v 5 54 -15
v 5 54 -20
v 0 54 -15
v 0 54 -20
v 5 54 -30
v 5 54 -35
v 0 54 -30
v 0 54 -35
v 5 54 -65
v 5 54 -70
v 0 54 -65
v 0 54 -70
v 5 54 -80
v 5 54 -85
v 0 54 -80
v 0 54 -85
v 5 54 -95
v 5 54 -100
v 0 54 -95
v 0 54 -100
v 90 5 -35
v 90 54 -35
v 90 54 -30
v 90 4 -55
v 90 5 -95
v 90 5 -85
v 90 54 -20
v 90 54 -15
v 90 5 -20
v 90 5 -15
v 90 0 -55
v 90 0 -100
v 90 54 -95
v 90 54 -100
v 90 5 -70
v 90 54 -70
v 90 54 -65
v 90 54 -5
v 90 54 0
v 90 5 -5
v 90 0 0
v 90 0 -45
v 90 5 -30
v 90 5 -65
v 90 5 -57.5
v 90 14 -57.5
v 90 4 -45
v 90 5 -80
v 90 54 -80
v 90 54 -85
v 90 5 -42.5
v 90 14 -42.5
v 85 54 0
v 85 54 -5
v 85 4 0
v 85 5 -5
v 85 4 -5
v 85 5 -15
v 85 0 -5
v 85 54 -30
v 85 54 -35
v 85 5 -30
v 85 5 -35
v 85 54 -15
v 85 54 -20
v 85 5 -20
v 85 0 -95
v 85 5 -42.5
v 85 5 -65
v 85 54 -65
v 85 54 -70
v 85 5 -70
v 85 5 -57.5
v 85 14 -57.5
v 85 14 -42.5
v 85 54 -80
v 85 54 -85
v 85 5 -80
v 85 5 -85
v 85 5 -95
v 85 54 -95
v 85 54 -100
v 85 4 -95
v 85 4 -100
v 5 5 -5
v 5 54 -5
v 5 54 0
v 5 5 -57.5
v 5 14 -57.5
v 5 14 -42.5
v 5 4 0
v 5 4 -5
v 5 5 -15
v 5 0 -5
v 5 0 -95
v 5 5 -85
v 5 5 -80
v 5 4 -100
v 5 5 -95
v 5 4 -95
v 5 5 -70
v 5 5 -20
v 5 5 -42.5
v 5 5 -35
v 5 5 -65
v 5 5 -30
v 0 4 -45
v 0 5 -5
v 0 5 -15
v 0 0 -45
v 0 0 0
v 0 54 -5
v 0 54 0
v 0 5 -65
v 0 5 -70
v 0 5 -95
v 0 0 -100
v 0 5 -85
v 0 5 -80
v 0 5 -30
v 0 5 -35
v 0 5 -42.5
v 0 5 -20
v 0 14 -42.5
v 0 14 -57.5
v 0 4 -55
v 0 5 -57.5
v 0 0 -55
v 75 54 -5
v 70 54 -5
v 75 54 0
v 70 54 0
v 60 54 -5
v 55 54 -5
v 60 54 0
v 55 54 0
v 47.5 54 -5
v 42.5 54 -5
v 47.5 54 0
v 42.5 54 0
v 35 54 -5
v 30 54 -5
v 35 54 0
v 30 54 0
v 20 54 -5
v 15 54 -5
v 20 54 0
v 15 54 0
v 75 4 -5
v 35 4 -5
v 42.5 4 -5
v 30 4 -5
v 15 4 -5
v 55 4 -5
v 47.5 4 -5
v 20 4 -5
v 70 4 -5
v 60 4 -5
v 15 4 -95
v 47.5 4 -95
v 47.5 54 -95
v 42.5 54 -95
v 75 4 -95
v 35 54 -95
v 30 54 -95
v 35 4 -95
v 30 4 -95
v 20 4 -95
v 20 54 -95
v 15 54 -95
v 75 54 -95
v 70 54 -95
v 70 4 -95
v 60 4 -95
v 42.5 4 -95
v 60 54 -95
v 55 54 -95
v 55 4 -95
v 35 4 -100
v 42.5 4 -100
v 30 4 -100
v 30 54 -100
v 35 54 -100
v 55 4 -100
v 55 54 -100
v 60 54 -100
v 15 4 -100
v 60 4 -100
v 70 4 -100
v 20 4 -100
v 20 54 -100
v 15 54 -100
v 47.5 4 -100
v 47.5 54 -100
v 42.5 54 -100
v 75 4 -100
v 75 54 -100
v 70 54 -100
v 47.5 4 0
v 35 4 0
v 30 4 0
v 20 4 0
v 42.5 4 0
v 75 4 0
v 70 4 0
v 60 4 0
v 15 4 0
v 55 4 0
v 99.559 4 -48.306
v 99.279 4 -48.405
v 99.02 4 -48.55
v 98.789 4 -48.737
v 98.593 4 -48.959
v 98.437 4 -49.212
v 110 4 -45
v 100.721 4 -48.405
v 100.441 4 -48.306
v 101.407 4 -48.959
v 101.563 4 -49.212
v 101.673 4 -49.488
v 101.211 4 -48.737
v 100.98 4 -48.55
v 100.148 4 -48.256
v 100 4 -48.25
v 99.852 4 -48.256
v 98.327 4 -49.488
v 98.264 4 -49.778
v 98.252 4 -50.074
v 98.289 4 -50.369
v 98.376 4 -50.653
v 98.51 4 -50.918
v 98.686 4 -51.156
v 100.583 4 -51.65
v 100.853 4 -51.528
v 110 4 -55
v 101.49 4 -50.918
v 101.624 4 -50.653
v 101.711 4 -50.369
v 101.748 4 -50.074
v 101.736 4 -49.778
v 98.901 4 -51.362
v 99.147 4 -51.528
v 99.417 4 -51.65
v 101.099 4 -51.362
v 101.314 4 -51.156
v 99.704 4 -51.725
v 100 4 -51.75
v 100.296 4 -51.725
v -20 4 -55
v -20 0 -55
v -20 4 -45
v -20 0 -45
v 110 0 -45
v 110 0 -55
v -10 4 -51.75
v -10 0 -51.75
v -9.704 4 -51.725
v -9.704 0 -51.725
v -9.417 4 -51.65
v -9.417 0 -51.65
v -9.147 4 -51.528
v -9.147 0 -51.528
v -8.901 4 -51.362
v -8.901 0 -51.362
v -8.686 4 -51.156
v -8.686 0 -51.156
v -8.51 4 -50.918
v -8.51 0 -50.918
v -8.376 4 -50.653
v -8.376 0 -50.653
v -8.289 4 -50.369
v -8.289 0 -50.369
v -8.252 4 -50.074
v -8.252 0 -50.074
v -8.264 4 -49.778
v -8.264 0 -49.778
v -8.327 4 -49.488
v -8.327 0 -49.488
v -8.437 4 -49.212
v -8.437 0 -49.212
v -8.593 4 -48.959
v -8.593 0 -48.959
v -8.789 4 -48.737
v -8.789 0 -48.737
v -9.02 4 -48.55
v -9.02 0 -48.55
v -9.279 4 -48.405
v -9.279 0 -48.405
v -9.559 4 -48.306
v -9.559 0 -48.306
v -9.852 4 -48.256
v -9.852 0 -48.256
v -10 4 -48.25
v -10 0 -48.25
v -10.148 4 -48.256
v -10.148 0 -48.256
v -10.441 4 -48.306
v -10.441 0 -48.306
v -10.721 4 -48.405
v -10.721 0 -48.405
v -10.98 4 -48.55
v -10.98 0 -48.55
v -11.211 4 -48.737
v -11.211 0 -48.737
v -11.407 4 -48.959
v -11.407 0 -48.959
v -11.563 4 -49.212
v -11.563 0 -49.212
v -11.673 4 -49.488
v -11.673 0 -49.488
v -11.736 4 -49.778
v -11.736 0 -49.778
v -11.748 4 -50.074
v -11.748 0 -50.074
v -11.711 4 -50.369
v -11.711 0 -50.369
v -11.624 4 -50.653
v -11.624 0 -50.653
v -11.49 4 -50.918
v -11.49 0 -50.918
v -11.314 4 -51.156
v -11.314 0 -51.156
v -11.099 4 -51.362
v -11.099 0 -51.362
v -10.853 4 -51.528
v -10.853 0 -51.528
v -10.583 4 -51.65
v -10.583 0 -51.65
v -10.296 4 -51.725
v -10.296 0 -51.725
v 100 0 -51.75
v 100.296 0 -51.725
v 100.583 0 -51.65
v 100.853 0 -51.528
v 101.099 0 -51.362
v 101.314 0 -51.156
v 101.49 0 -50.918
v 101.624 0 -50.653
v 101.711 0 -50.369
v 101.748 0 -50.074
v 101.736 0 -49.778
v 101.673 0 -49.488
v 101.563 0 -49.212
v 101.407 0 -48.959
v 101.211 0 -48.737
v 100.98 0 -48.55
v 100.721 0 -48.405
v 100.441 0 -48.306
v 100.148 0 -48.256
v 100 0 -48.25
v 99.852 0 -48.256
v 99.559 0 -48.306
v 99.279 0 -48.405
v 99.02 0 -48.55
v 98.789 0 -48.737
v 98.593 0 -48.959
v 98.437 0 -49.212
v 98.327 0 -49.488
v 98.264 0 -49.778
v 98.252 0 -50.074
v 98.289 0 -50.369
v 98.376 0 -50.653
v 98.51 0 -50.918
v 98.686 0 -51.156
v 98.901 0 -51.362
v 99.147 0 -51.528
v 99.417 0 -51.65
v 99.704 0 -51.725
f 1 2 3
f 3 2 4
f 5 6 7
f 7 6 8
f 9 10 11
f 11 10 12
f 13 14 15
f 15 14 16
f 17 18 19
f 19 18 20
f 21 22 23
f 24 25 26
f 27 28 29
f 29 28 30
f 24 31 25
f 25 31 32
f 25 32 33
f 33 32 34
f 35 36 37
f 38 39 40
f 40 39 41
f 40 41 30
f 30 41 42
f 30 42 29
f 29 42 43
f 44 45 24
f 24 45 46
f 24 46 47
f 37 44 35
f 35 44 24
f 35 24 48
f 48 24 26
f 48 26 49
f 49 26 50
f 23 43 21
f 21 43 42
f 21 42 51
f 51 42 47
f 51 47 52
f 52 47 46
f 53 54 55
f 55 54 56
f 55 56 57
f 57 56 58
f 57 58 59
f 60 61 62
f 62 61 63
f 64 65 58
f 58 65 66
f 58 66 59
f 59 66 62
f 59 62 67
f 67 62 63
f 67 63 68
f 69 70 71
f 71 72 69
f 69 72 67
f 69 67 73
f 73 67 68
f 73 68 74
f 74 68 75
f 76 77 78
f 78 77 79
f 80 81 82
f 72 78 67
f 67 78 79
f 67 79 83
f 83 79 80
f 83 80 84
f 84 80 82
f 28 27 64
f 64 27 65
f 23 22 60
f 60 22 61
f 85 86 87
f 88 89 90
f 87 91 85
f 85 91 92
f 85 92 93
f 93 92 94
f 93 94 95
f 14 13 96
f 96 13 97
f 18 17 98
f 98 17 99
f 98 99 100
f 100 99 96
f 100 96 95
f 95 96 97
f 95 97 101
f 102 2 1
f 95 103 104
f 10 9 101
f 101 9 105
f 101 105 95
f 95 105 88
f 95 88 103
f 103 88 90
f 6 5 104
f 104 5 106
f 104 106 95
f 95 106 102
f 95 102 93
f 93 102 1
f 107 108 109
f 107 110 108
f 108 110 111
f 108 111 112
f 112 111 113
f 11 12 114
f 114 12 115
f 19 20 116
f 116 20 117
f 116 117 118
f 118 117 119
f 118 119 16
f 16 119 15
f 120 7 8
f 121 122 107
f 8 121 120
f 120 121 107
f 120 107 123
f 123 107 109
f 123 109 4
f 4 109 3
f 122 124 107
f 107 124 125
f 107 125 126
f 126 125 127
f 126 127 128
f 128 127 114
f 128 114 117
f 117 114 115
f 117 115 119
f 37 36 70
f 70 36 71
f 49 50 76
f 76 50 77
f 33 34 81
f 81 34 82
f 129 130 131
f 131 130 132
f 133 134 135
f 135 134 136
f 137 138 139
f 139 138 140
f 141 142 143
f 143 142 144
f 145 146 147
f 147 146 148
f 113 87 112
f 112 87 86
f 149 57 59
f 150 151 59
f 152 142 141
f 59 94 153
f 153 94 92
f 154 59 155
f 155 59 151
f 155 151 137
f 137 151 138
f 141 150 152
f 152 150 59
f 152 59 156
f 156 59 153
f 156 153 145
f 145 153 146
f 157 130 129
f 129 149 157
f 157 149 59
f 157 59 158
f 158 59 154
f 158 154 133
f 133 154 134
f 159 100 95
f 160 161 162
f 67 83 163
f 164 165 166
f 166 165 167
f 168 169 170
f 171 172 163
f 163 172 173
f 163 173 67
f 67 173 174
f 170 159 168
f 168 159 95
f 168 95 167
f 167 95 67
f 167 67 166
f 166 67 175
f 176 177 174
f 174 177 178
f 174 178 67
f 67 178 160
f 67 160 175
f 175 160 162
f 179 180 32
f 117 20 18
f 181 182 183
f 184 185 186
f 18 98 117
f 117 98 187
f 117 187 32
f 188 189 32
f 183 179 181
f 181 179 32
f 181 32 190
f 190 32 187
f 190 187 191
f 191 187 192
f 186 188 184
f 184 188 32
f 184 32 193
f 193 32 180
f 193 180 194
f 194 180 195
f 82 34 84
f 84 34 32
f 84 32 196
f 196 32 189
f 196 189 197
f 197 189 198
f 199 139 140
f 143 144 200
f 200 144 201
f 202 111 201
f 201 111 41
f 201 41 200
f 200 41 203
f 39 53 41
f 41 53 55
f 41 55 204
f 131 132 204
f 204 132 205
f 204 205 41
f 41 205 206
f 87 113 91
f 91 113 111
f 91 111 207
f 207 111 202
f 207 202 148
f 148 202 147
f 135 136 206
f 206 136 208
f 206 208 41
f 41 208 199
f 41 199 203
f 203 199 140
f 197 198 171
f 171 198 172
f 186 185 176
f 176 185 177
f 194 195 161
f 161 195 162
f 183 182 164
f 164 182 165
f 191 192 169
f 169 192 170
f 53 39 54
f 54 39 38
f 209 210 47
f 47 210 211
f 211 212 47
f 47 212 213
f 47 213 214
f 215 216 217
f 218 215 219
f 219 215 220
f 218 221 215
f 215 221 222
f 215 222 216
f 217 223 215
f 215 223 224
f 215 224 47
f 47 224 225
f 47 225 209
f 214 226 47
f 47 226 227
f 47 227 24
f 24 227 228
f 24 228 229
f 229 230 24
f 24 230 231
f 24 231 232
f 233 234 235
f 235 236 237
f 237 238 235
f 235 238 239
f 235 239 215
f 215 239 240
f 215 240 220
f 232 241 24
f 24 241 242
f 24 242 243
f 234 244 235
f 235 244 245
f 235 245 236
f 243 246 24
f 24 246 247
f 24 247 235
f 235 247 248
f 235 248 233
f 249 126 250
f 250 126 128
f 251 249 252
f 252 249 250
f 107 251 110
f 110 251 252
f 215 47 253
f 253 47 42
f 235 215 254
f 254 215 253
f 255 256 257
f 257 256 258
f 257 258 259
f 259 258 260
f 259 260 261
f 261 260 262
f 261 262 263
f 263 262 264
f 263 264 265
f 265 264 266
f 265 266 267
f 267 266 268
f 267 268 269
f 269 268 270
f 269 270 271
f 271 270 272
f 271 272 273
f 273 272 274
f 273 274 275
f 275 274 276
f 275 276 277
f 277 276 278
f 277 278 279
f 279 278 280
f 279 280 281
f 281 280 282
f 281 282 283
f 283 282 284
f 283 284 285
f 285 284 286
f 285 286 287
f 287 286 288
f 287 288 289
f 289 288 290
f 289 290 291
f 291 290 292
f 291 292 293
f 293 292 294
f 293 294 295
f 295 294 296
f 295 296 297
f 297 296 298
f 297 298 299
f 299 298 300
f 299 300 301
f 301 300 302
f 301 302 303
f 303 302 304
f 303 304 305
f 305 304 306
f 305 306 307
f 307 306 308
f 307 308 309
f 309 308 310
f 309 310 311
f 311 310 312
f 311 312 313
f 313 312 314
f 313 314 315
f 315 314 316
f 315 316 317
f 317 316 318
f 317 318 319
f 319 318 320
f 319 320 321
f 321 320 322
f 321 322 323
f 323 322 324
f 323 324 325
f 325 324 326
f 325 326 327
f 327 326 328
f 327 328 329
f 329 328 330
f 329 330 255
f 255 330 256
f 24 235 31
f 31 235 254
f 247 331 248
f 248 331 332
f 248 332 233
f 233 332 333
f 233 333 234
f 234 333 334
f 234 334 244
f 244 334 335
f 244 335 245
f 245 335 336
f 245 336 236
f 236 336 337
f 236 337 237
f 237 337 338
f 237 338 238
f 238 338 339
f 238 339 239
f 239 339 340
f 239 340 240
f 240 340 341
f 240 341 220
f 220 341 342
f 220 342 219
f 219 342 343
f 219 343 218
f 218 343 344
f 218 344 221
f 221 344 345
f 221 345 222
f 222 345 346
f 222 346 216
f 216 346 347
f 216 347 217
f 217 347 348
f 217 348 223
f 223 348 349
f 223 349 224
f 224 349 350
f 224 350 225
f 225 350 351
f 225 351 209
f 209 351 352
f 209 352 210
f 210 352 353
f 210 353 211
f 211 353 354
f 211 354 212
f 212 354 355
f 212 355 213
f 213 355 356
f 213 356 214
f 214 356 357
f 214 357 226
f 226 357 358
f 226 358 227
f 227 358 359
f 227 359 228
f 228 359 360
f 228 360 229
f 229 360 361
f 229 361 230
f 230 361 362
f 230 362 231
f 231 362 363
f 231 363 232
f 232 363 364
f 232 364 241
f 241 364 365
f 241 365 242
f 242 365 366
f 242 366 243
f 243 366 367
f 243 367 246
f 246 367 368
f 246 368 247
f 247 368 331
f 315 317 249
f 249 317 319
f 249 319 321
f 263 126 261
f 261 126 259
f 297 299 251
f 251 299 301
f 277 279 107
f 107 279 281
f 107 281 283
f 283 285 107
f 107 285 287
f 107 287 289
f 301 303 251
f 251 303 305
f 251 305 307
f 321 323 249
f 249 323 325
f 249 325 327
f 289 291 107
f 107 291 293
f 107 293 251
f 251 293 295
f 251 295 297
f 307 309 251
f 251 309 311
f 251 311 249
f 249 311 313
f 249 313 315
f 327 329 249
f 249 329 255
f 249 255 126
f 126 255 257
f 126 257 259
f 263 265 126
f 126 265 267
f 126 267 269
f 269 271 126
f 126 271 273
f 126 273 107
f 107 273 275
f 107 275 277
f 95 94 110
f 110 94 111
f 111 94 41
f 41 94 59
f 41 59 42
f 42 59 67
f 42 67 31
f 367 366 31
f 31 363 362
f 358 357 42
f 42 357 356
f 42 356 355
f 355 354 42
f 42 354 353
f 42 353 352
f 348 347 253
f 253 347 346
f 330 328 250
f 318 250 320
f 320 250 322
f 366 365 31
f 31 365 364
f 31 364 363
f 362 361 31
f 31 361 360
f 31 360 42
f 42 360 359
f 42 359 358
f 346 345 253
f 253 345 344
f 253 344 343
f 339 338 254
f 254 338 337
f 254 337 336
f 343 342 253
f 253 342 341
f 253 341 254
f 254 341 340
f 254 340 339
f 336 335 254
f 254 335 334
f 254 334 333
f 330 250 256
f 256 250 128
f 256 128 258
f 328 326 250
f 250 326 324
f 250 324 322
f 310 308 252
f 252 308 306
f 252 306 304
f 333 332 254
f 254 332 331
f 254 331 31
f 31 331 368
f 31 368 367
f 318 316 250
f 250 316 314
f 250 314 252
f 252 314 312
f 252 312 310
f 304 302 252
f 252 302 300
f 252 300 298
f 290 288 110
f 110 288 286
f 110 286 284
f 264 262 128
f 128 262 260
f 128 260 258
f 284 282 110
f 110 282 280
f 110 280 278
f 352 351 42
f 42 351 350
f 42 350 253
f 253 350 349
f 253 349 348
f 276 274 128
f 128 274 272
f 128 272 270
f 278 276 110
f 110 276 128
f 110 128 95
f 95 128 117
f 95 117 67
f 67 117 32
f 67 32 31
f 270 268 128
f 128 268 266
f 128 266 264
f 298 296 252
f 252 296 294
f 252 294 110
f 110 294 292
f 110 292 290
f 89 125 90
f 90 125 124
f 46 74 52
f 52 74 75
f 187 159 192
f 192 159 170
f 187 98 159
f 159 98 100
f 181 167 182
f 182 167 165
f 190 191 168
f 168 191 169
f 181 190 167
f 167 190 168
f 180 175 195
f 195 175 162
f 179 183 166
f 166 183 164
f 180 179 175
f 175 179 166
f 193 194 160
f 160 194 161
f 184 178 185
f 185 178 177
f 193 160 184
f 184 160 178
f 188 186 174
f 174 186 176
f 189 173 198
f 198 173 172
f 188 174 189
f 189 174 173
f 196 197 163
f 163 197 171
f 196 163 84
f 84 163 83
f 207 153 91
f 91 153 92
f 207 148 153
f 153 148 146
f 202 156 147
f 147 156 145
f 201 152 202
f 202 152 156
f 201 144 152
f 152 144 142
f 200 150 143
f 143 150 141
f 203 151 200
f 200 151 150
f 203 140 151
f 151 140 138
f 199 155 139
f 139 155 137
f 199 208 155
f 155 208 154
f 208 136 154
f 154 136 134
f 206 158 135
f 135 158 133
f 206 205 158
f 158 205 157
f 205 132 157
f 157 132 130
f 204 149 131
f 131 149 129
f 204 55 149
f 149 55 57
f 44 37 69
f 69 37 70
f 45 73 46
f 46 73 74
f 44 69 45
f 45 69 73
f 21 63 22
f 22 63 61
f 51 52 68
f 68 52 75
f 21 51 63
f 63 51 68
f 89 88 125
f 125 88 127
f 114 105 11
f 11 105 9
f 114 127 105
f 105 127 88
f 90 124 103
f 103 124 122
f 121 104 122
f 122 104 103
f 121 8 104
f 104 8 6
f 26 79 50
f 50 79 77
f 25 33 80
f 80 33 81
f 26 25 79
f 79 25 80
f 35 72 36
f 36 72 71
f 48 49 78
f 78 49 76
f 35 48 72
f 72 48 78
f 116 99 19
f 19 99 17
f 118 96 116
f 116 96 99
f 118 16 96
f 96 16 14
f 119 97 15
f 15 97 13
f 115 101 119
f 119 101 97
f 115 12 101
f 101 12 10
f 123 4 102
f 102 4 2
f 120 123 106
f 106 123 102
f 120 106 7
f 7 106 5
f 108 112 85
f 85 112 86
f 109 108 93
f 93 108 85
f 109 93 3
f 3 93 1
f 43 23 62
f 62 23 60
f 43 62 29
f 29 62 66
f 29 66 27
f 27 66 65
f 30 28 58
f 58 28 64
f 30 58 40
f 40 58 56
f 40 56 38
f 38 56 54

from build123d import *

# Parameters (mm, degrees)
SKETCH1_W           = 80
SKETCH1_H           = 90
SKETCH1_R           = 1.75
BOSS_EXTRUDE1_DEPTH = 4
SKETCH2_W           = 80
SKETCH2_H           = 90
BOSS_EXTRUDE2_DEPTH = 50
SKETCH3_W           = 5
SKETCH3_H           = 15
CUT_EXTRUDE1_DEPTH  = 40
SKETCH6_W           = 10
SKETCH6_H           = 50
SKETCH6_W_2         = 7.5
CUT_EXTRUDE5_DEPTH  = 159.164471358
SKETCH8_W           = 10
SKETCH8_H           = 49
CUT_EXTRUDE6_DEPTH  = 159.164471358


with BuildPart() as part:
    # Sketch1 → Boss-Extrude1 (new body)
    with BuildSketch(Plane(origin=(0, 0, 0), x_dir=(1, 0, 0), z_dir=(0, 1, 0))):
        Polygon((0, 0), (90, 0), (90, 45), (110, 45), (110, 55), (90, 55), (90, 100), (0, 100), (0, 55), (-20, 55), (-20, 45), (0, 45), align=None)
        with Locations((45, 50)):
            Rectangle(SKETCH1_W, SKETCH1_H, mode=Mode.SUBTRACT)
        with Locations(Location((-10, 50, 0), (0, 0, 270))):
            Circle(SKETCH1_R, mode=Mode.SUBTRACT)
        with Locations(Location((100, 50, 0), (0, 0, 270))):
            Circle(SKETCH1_R, mode=Mode.SUBTRACT)
    extrude(amount=BOSS_EXTRUDE1_DEPTH)

    # Sketch2 → Boss-Extrude2 (add)
    with BuildSketch(Plane(origin=(0, 4, 0), x_dir=(1, 0, 0), z_dir=(0, 1, 0))):
        Polygon((0, 45), (0, 0), (90, 0), (90, 45), (90, 55), (90, 100), (0, 100), (0, 55), align=None)
        with Locations((45, 50)):
            Rectangle(SKETCH2_W, SKETCH2_H, mode=Mode.SUBTRACT)
    extrude(amount=BOSS_EXTRUDE2_DEPTH)

    # Sketch3 → Cut-Extrude1 (cut)
    with BuildSketch(Plane(origin=(0, 54, 0), x_dir=(1, 0, 0), z_dir=(0, 1, 0))):
        with Locations((87.5, 50)):
            Rectangle(SKETCH3_W, SKETCH3_H)
        with Locations((2.5, 50)):
            Rectangle(SKETCH3_W, SKETCH3_H)
    extrude(amount=-CUT_EXTRUDE1_DEPTH, mode=Mode.SUBTRACT)

    # Sketch6 → Cut-Extrude5 (cut, through all)
    with BuildSketch(Plane(origin=(0, 0, -100), x_dir=(-1, 0, 0), z_dir=(0, 0, -1))):
        with Locations((-80, 29)):
            Rectangle(SKETCH6_W, SKETCH6_H)
        with Locations((-65, 29)):
            Rectangle(SKETCH6_W, SKETCH6_H)
        with Locations((-51.25, 29)):
            Rectangle(SKETCH6_W_2, SKETCH6_H)
        with Locations((-38.75, 29)):
            Rectangle(SKETCH6_W_2, SKETCH6_H)
        with Locations((-25, 29)):
            Rectangle(SKETCH6_W, SKETCH6_H)
        with Locations((-10, 29)):
            Rectangle(SKETCH6_W, SKETCH6_H)
    extrude(amount=-CUT_EXTRUDE5_DEPTH, mode=Mode.SUBTRACT)

    # Sketch8 → Cut-Extrude6 (cut, through all)
    with BuildSketch(Plane(origin=(90, 0, 0), x_dir=(0, 0, -1), z_dir=(1, 0, 0))):
        with Locations((10, 29.5)):
            Rectangle(SKETCH8_W, SKETCH8_H)
        with Locations((25, 29.5)):
            Rectangle(SKETCH8_W, SKETCH8_H)
        Polygon((42.5, 54), (35, 54), (35, 5), (42.5, 5), (42.5, 14), align=None)
        Polygon((57.5, 14), (57.5, 5), (65, 5), (65, 54), (57.5, 54), align=None)
        with Locations((75, 29.5)):
            Rectangle(SKETCH8_W, SKETCH8_H)
        with Locations((90, 29.5)):
            Rectangle(SKETCH8_W, SKETCH8_H)
    extrude(amount=-CUT_EXTRUDE6_DEPTH, mode=Mode.SUBTRACT)


solid = part.part
